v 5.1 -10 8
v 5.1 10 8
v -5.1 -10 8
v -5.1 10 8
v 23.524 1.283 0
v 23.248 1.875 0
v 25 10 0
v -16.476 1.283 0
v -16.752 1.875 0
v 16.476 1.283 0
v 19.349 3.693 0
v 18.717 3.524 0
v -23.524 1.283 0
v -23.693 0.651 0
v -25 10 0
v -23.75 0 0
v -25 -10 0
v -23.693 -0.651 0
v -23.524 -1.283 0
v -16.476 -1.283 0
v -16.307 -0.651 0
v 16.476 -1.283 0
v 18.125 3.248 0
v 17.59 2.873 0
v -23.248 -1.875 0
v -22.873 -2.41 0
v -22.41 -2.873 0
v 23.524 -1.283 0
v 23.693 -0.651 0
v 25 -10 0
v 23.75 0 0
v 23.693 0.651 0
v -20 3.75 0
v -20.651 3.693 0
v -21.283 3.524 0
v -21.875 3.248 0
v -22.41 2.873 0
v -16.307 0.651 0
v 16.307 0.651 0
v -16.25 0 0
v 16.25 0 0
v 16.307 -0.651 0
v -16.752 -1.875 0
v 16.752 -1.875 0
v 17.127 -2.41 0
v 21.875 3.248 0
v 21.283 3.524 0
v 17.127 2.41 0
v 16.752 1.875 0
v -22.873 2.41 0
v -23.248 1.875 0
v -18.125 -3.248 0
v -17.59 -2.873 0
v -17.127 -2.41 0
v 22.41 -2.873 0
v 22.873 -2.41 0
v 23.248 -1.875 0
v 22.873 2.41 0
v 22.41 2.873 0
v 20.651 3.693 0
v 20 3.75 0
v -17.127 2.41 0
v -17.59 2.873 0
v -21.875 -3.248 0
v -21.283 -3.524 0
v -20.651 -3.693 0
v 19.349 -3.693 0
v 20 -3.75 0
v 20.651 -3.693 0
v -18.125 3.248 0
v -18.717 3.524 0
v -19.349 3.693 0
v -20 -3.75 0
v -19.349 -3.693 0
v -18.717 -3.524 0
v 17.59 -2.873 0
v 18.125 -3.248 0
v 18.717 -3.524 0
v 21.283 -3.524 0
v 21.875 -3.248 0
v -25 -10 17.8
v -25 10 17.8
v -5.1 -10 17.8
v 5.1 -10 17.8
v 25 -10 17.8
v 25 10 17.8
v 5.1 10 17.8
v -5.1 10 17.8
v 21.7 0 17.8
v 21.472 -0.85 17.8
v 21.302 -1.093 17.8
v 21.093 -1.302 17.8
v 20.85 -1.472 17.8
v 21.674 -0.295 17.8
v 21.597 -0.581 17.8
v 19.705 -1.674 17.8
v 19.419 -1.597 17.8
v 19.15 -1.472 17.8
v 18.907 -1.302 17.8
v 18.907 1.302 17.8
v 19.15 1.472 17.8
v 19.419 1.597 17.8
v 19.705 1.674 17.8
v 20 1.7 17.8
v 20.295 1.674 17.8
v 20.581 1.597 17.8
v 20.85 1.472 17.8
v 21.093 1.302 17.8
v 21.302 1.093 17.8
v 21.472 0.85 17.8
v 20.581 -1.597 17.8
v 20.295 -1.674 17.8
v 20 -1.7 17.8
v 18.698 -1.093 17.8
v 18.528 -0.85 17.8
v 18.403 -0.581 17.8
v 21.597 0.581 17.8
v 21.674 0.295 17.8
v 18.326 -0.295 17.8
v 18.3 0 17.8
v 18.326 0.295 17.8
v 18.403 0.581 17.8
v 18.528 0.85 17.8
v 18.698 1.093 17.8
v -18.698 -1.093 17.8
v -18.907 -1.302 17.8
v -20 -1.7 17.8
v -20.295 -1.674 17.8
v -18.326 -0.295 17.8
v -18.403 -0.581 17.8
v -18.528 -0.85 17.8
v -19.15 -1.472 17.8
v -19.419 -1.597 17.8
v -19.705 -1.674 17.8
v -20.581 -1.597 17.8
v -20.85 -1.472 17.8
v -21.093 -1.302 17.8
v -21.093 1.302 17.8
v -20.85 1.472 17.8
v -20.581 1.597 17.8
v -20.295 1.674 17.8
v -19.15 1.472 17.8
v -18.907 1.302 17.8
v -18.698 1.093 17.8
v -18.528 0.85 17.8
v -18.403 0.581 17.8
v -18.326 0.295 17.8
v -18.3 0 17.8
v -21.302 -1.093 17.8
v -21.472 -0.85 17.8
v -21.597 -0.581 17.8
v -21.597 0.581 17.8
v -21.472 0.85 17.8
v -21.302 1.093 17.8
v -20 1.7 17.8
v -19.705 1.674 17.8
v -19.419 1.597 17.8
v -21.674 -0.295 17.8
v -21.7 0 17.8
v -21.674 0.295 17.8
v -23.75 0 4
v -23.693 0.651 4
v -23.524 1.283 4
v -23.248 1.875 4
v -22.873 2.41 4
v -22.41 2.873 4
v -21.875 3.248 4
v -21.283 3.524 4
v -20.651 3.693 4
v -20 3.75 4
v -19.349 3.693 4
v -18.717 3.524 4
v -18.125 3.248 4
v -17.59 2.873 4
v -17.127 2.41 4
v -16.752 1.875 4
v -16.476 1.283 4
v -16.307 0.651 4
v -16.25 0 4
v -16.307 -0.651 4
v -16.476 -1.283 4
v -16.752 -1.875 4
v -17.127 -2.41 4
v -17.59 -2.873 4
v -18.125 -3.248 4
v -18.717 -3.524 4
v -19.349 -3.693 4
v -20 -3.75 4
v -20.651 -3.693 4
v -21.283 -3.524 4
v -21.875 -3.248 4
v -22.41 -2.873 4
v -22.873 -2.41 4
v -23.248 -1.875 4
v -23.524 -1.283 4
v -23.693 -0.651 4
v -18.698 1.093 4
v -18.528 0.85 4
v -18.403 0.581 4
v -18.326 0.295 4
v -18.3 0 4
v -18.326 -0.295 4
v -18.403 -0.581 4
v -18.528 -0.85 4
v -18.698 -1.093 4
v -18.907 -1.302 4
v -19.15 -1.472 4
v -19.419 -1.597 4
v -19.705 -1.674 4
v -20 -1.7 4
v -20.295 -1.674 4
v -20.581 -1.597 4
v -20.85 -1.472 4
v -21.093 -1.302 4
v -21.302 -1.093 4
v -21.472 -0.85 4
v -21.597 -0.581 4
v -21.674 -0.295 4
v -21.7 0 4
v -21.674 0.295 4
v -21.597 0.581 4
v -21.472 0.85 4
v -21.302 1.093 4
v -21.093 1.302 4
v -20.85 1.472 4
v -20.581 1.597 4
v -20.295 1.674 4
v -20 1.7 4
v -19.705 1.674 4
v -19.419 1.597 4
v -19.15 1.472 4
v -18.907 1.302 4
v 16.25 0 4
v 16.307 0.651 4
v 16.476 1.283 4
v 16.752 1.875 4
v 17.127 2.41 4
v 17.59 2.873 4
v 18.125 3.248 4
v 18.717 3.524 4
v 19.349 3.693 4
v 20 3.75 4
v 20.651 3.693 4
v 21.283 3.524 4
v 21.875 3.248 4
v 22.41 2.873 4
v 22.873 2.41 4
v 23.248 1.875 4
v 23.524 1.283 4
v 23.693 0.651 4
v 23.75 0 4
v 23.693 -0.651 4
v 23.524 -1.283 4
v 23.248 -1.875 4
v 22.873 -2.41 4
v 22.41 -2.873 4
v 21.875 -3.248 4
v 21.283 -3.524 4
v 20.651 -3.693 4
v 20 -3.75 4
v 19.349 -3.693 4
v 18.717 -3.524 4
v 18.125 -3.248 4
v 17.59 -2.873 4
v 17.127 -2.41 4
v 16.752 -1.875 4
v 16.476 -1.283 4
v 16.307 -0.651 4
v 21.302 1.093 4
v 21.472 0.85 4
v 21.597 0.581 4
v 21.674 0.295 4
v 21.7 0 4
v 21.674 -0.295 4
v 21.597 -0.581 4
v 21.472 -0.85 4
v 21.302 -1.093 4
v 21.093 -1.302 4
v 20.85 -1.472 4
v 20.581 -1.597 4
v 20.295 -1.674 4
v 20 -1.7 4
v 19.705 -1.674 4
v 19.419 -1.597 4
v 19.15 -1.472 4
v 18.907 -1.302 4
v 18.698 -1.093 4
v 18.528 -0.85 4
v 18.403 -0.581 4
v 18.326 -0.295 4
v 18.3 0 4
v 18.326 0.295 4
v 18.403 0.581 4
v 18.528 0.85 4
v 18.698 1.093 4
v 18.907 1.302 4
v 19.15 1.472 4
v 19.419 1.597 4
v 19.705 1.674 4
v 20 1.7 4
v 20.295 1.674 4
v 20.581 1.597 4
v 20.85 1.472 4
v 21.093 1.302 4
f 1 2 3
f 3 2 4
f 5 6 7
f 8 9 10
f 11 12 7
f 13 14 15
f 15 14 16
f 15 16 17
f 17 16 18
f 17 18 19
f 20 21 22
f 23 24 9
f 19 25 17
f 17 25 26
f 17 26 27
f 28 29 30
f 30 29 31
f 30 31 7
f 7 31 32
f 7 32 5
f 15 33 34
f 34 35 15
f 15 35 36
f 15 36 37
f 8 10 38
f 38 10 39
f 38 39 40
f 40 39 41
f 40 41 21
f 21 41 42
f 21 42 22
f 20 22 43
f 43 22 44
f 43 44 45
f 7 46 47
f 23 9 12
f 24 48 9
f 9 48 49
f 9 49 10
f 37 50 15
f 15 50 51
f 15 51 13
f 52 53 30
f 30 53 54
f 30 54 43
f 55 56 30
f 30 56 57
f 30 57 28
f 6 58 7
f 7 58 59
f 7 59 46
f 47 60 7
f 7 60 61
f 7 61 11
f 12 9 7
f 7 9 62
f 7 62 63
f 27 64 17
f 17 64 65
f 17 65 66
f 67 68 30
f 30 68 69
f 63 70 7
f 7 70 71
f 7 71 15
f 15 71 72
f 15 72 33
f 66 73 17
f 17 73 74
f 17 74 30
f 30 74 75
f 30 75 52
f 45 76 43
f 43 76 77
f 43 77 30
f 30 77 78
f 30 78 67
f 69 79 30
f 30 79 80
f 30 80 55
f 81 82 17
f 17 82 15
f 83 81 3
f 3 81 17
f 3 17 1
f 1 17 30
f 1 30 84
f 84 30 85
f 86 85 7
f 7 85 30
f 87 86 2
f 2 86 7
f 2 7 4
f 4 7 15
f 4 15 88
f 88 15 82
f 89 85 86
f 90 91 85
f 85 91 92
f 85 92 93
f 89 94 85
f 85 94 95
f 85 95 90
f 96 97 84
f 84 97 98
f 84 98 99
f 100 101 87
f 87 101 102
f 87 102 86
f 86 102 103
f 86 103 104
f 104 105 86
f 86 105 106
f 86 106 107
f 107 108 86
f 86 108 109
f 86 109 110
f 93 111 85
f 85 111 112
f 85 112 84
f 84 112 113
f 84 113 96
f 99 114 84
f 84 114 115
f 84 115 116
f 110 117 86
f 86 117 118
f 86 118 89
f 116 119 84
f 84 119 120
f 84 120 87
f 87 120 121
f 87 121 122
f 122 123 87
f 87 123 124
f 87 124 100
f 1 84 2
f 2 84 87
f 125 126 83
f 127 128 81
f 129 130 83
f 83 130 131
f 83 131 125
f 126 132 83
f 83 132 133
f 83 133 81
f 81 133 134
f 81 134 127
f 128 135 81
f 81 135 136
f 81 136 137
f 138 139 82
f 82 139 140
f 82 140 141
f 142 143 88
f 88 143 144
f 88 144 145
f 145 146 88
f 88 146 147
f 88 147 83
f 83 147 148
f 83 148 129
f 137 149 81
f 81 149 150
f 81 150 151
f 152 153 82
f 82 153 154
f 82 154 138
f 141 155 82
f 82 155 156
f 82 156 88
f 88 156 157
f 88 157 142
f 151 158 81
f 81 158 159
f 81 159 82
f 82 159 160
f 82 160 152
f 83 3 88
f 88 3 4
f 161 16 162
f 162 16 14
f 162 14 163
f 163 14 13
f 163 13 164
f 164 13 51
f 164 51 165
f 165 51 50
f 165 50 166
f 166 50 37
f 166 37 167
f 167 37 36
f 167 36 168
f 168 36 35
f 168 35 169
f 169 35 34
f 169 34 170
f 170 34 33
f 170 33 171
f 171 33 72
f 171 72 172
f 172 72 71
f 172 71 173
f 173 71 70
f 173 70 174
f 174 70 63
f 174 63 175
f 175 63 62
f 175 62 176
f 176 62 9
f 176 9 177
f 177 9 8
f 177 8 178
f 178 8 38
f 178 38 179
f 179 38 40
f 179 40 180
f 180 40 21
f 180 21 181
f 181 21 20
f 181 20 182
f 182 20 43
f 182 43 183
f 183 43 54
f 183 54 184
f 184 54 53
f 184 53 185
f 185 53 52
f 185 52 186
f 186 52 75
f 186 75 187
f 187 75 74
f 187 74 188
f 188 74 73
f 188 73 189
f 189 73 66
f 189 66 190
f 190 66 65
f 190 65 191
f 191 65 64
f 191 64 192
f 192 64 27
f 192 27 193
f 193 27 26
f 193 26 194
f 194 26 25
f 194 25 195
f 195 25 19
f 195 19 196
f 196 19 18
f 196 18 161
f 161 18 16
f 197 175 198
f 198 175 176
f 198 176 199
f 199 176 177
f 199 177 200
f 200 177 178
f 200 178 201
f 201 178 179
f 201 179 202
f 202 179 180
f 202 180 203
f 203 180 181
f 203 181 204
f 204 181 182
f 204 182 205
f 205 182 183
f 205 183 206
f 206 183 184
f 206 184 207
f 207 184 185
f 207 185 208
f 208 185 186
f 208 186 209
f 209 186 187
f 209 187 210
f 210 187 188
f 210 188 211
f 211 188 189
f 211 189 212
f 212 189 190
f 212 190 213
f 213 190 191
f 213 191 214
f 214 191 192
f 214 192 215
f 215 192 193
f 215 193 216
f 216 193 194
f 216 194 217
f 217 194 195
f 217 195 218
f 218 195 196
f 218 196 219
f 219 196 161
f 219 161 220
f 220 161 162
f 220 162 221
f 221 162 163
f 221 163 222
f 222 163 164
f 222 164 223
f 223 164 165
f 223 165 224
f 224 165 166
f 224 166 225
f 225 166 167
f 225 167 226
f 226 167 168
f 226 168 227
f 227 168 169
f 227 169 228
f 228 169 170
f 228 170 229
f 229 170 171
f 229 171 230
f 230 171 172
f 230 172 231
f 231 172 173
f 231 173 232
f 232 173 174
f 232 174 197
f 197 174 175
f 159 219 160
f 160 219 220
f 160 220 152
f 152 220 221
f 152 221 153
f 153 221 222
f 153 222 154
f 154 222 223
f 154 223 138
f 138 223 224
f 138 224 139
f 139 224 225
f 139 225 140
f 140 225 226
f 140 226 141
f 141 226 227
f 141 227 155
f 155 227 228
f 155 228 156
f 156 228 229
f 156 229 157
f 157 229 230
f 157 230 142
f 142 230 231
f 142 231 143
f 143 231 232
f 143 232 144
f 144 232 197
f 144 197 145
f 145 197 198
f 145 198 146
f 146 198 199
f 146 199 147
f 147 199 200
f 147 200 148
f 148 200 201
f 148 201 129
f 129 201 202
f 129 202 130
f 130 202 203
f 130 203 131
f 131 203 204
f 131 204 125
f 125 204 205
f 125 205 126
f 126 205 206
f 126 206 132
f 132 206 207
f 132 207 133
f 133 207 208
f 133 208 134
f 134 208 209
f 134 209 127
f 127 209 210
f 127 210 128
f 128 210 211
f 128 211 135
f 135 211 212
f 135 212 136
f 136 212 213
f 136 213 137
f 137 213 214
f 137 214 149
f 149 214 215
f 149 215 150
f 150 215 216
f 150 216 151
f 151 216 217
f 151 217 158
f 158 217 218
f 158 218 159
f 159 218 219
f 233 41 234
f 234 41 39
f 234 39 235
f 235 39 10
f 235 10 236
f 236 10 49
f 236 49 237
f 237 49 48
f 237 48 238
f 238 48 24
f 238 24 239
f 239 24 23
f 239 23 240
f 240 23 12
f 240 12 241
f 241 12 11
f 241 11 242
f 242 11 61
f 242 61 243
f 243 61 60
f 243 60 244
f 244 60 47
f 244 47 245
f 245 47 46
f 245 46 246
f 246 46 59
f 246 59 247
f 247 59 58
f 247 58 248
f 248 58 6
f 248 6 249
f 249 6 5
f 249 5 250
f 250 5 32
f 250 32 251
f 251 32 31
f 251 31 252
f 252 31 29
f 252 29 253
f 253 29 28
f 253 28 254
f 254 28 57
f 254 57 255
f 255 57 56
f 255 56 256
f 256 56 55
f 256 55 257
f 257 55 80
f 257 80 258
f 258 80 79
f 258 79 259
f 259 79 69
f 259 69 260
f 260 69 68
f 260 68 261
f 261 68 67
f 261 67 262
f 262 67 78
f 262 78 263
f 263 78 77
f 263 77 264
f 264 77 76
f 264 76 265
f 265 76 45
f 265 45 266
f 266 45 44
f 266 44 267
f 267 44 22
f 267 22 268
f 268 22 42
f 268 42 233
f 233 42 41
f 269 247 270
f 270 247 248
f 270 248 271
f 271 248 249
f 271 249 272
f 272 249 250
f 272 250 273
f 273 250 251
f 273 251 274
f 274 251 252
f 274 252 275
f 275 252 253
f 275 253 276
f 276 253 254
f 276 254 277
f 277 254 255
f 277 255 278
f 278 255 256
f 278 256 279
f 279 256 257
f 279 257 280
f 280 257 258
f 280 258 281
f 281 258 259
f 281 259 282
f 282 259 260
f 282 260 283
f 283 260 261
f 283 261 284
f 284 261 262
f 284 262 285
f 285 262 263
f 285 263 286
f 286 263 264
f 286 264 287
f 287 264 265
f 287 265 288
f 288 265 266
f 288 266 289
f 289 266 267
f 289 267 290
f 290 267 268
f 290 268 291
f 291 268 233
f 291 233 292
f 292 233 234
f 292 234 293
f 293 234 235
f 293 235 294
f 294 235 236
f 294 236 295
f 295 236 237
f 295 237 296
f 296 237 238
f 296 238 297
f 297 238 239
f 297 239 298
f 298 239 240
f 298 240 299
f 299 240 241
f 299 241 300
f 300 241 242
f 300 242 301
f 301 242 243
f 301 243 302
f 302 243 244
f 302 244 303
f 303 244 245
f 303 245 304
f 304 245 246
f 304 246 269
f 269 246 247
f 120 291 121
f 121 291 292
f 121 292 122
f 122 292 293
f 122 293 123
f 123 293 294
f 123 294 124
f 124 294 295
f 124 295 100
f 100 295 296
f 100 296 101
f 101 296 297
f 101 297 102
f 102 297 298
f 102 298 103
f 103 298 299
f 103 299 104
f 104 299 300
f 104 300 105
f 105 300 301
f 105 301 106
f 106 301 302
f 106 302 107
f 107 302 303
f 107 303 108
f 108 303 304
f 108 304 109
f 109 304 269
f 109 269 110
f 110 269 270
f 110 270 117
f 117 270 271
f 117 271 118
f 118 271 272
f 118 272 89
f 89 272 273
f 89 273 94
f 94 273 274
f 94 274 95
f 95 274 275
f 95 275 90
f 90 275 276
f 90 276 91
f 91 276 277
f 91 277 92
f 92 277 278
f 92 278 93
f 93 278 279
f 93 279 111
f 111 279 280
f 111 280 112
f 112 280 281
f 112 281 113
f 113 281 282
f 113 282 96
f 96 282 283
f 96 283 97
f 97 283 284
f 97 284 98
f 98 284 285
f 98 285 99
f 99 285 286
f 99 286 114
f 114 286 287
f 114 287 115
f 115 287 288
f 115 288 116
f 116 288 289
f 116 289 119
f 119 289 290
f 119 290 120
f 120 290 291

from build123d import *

# Parameters (mm, degrees)
SKETCH2_W           = 50
SKETCH2_H           = 20
SKETCH2_R           = 1.7
BOSS_EXTRUDE1_DEPTH = 8
BOSS_EXTRUDE2_DEPTH = 20
SKETCH6_R           = 3.75
CUT_EXTRUDE1_DEPTH  = 4
SKETCH7_R           = 1.7
CUT_EXTRUDE2_DEPTH  = 18.8


with BuildPart() as part:
    # Sketch2 → Boss-Extrude1 (new body)
    with BuildSketch(Plane.XY):
        Rectangle(SKETCH2_W, SKETCH2_H)
        with Locations((-20, 0)):
            Circle(SKETCH2_R, mode=Mode.SUBTRACT)
        with Locations((20, 0)):
            Circle(SKETCH2_R, mode=Mode.SUBTRACT)
    extrude(amount=BOSS_EXTRUDE1_DEPTH)

    # Sketch5 → Boss-Extrude2 (add)
    with BuildSketch(Plane.XZ.offset(10)):
        with BuildLine():
            Line((-25, 8), (-25, 17.8))
            Line((-25, 17.8), (-5.1, 17.8))
            Line((-5.1, 17.8), (-5.1, 8))
            Line((-5.1, 8), (5.1, 8))
            Line((5.1, 8), (5.1, 17.8))
            Line((5.1, 17.8), (25, 17.8))
            Line((25, 17.8), (25, 8))
            ThreePointArc((25, 8), (0, 0), (-25, 8))
        make_face()
    extrude(amount=-BOSS_EXTRUDE2_DEPTH)

    # Sketch6 → Cut-Extrude1 (cut)
    with BuildSketch(Plane(origin=(0, 0, 0), x_dir=(-1, 0, 0), z_dir=(0, 0, -1))):
        with Locations((20, 0)):
            Circle(SKETCH6_R)
        with Locations((-20, 0)):
            Circle(SKETCH6_R)
    extrude(amount=-CUT_EXTRUDE1_DEPTH, mode=Mode.SUBTRACT)

    # Sketch7 → Cut-Extrude2 (cut, through all)
    with BuildSketch(Plane(origin=(0, 0, 0), x_dir=(-1, 0, 0), z_dir=(0, 0, -1))):
        with Locations((20, 0)):
            Circle(SKETCH7_R)
        with Locations((-20, 0)):
            Circle(SKETCH7_R)
    extrude(amount=-CUT_EXTRUDE2_DEPTH, mode=Mode.SUBTRACT)


solid = part.part
